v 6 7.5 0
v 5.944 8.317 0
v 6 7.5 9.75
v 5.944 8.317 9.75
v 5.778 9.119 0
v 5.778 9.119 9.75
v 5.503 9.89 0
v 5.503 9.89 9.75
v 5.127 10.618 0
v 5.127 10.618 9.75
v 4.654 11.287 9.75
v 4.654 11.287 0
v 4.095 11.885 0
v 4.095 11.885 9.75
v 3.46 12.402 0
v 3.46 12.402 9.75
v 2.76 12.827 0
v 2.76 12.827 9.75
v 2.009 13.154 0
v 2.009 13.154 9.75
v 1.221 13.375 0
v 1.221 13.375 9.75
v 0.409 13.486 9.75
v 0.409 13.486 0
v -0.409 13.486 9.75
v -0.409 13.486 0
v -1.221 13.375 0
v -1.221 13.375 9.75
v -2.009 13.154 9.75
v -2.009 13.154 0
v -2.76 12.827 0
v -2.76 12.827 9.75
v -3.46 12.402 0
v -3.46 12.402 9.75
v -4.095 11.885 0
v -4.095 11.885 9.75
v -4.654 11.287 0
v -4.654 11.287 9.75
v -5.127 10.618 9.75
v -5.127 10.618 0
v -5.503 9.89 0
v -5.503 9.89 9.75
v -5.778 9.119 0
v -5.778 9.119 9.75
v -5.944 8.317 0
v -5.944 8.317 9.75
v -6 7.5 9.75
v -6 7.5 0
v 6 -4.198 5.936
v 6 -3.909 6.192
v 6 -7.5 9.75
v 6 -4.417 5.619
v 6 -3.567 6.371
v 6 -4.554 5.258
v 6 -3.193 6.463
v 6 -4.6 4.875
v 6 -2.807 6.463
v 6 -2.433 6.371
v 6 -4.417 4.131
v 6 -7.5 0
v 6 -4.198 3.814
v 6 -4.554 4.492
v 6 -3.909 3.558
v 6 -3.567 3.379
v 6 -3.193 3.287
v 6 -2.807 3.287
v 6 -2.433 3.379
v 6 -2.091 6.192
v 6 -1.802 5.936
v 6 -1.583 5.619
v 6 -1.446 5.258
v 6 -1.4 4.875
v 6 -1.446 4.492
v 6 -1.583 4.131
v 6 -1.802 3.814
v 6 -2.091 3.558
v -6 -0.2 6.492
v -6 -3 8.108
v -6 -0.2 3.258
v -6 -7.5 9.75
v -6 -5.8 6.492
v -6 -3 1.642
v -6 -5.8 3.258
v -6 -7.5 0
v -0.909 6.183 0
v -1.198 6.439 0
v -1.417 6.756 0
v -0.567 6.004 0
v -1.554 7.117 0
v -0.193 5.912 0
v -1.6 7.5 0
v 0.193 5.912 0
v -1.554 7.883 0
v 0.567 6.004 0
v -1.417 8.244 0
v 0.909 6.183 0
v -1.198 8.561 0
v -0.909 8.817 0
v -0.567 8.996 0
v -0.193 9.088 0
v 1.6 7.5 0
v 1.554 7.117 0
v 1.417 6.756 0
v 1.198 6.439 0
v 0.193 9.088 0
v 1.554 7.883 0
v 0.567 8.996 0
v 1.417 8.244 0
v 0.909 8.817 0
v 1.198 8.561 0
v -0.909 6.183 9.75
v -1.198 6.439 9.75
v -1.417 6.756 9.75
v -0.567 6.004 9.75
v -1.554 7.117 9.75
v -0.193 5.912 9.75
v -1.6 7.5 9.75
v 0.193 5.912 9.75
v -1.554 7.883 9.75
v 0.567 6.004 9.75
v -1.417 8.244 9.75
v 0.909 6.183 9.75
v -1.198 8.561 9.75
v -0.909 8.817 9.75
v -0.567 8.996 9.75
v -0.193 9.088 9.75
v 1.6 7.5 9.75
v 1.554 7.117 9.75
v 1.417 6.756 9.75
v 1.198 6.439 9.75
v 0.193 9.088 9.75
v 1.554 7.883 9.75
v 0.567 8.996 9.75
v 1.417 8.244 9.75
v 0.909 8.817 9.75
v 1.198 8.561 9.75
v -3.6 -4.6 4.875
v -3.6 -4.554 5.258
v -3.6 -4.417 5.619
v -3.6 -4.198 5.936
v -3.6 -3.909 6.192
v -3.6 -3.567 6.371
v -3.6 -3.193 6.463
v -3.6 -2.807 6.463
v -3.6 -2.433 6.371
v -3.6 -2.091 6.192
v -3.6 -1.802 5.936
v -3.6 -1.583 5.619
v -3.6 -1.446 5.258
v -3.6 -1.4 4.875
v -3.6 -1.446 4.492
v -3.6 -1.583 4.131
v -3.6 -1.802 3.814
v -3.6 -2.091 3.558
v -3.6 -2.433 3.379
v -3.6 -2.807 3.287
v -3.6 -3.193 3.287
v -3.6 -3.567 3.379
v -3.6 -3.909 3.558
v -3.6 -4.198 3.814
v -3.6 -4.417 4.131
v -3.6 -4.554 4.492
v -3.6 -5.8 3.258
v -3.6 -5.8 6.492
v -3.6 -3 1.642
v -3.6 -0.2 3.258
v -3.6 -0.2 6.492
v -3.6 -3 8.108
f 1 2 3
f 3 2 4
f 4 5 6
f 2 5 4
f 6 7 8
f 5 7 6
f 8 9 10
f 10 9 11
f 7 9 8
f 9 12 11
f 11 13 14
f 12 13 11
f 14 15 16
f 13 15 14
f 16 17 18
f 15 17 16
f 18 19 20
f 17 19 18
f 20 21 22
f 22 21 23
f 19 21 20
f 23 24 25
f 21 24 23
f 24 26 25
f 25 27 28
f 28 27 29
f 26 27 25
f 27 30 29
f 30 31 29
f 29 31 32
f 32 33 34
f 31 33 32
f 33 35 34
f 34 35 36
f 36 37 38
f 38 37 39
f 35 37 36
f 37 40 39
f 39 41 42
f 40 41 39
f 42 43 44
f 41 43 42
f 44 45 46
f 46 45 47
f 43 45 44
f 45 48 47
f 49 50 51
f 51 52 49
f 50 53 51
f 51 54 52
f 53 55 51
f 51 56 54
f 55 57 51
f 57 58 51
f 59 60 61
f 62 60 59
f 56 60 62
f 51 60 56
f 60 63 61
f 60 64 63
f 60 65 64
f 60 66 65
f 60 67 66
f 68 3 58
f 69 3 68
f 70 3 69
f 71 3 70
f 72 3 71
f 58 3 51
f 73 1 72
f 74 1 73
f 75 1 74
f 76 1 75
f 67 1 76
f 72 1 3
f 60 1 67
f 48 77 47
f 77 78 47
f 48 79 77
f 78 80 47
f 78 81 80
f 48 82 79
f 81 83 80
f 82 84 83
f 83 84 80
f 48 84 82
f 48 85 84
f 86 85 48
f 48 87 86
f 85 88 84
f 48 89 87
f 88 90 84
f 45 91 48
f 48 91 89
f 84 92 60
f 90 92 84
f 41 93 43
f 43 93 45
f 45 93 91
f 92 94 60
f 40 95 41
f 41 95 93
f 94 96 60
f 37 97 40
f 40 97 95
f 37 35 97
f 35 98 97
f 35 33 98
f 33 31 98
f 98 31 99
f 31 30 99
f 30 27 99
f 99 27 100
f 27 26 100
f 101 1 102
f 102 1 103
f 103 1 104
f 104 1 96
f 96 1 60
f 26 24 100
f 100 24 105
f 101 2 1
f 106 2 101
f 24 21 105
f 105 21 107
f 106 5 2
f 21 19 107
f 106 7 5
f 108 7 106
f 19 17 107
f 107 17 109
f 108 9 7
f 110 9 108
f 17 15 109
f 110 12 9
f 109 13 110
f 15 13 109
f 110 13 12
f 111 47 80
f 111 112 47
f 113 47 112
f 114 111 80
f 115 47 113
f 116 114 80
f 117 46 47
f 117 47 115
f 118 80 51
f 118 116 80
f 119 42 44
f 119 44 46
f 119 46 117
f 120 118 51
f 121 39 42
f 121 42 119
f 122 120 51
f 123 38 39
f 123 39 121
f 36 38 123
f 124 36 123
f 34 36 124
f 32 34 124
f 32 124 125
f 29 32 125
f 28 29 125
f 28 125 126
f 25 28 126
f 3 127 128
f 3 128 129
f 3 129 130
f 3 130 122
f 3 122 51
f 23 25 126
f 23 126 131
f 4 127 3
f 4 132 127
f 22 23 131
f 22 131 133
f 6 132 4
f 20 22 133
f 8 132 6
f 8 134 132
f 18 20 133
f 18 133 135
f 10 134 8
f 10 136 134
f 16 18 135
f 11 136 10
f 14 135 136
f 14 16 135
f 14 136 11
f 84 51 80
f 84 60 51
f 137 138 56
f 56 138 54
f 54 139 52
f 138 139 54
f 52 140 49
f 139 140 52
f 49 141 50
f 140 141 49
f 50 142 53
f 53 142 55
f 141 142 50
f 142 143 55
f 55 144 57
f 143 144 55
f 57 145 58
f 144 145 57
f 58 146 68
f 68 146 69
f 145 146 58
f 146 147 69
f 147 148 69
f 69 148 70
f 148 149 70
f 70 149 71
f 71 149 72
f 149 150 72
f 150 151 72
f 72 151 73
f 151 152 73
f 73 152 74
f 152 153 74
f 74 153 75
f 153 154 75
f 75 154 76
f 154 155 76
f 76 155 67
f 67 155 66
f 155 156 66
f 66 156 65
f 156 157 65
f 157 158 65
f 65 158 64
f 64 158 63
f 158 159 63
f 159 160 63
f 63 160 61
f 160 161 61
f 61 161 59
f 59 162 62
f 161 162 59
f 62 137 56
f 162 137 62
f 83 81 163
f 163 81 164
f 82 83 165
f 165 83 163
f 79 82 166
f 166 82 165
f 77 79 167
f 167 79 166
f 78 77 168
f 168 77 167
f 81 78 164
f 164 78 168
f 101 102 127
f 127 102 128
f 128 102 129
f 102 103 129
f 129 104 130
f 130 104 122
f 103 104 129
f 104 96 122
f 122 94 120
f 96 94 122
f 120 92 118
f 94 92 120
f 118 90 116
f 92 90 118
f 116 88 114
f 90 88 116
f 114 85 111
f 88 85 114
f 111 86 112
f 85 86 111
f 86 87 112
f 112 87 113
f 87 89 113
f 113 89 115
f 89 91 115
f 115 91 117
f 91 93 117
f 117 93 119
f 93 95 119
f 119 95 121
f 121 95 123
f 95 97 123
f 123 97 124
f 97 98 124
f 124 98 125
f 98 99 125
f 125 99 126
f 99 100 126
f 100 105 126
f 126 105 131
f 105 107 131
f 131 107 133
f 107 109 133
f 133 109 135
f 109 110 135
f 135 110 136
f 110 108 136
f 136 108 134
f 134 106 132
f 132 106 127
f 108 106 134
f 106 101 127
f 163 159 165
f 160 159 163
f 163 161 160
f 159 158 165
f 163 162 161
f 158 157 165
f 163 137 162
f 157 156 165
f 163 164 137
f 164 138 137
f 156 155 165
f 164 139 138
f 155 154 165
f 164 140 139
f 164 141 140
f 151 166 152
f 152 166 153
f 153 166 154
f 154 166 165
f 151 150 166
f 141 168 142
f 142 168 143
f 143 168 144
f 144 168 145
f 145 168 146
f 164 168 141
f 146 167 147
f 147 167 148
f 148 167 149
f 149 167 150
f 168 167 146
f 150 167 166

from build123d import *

# Parameters (mm, degrees)
PAD_DEPTH       = 9.75
SKETCH001_R     = 1.6
POCKET_DEPTH    = 9.751
SKETCH002_R     = 1.6
POCKET001_DEPTH = 12.001
POCKET002_DEPTH = 2.4


with BuildPart() as part:
    # Sketch → Pad (new body)
    with BuildSketch(Plane.XY):
        with BuildLine():
            ThreePointArc((6, 7.5), (0, 13.5), (-6, 7.5))
            Line((-6, 7.5), (-6, -7.5))
            Line((-6, -7.5), (6, -7.5))
            Line((6, -7.5), (6, 7.5))
        make_face()
    extrude(amount=PAD_DEPTH)

    # Sketch001 (on Face5 of Pad) → Pocket (cut, through all)
    with BuildSketch(Plane(origin=(0, 0, 0), x_dir=(1, 0, 0), z_dir=(0, 0, -1))):
        with Locations((0, -7.5)):
            Circle(SKETCH001_R)
    extrude(amount=-POCKET_DEPTH, mode=Mode.SUBTRACT)

    # Sketch002 (on Face3 of Pocket) → Pocket001 (cut, through all)
    with BuildSketch(Plane(origin=(-6, 0, 0), x_dir=(0, -1, 0), z_dir=(-1, 0, 0))):
        with Locations((3, 4.875)):
            Circle(SKETCH002_R)
    extrude(amount=-POCKET001_DEPTH, mode=Mode.SUBTRACT)

    # Sketch003 (on Face3 of Pocket001) → Pocket002 (cut)
    with BuildSketch(Plane(origin=(-6, 0, 0), x_dir=(0, -1, 0), z_dir=(-1, 0, 0))):
        Polygon((5.8, 6.491581), (3, 8.108162), (0.2, 6.491581), (0.2, 3.258419), (3, 1.641838), (5.8, 3.258419), align=None)
    extrude(amount=-POCKET002_DEPTH, mode=Mode.SUBTRACT)


solid = part.part
